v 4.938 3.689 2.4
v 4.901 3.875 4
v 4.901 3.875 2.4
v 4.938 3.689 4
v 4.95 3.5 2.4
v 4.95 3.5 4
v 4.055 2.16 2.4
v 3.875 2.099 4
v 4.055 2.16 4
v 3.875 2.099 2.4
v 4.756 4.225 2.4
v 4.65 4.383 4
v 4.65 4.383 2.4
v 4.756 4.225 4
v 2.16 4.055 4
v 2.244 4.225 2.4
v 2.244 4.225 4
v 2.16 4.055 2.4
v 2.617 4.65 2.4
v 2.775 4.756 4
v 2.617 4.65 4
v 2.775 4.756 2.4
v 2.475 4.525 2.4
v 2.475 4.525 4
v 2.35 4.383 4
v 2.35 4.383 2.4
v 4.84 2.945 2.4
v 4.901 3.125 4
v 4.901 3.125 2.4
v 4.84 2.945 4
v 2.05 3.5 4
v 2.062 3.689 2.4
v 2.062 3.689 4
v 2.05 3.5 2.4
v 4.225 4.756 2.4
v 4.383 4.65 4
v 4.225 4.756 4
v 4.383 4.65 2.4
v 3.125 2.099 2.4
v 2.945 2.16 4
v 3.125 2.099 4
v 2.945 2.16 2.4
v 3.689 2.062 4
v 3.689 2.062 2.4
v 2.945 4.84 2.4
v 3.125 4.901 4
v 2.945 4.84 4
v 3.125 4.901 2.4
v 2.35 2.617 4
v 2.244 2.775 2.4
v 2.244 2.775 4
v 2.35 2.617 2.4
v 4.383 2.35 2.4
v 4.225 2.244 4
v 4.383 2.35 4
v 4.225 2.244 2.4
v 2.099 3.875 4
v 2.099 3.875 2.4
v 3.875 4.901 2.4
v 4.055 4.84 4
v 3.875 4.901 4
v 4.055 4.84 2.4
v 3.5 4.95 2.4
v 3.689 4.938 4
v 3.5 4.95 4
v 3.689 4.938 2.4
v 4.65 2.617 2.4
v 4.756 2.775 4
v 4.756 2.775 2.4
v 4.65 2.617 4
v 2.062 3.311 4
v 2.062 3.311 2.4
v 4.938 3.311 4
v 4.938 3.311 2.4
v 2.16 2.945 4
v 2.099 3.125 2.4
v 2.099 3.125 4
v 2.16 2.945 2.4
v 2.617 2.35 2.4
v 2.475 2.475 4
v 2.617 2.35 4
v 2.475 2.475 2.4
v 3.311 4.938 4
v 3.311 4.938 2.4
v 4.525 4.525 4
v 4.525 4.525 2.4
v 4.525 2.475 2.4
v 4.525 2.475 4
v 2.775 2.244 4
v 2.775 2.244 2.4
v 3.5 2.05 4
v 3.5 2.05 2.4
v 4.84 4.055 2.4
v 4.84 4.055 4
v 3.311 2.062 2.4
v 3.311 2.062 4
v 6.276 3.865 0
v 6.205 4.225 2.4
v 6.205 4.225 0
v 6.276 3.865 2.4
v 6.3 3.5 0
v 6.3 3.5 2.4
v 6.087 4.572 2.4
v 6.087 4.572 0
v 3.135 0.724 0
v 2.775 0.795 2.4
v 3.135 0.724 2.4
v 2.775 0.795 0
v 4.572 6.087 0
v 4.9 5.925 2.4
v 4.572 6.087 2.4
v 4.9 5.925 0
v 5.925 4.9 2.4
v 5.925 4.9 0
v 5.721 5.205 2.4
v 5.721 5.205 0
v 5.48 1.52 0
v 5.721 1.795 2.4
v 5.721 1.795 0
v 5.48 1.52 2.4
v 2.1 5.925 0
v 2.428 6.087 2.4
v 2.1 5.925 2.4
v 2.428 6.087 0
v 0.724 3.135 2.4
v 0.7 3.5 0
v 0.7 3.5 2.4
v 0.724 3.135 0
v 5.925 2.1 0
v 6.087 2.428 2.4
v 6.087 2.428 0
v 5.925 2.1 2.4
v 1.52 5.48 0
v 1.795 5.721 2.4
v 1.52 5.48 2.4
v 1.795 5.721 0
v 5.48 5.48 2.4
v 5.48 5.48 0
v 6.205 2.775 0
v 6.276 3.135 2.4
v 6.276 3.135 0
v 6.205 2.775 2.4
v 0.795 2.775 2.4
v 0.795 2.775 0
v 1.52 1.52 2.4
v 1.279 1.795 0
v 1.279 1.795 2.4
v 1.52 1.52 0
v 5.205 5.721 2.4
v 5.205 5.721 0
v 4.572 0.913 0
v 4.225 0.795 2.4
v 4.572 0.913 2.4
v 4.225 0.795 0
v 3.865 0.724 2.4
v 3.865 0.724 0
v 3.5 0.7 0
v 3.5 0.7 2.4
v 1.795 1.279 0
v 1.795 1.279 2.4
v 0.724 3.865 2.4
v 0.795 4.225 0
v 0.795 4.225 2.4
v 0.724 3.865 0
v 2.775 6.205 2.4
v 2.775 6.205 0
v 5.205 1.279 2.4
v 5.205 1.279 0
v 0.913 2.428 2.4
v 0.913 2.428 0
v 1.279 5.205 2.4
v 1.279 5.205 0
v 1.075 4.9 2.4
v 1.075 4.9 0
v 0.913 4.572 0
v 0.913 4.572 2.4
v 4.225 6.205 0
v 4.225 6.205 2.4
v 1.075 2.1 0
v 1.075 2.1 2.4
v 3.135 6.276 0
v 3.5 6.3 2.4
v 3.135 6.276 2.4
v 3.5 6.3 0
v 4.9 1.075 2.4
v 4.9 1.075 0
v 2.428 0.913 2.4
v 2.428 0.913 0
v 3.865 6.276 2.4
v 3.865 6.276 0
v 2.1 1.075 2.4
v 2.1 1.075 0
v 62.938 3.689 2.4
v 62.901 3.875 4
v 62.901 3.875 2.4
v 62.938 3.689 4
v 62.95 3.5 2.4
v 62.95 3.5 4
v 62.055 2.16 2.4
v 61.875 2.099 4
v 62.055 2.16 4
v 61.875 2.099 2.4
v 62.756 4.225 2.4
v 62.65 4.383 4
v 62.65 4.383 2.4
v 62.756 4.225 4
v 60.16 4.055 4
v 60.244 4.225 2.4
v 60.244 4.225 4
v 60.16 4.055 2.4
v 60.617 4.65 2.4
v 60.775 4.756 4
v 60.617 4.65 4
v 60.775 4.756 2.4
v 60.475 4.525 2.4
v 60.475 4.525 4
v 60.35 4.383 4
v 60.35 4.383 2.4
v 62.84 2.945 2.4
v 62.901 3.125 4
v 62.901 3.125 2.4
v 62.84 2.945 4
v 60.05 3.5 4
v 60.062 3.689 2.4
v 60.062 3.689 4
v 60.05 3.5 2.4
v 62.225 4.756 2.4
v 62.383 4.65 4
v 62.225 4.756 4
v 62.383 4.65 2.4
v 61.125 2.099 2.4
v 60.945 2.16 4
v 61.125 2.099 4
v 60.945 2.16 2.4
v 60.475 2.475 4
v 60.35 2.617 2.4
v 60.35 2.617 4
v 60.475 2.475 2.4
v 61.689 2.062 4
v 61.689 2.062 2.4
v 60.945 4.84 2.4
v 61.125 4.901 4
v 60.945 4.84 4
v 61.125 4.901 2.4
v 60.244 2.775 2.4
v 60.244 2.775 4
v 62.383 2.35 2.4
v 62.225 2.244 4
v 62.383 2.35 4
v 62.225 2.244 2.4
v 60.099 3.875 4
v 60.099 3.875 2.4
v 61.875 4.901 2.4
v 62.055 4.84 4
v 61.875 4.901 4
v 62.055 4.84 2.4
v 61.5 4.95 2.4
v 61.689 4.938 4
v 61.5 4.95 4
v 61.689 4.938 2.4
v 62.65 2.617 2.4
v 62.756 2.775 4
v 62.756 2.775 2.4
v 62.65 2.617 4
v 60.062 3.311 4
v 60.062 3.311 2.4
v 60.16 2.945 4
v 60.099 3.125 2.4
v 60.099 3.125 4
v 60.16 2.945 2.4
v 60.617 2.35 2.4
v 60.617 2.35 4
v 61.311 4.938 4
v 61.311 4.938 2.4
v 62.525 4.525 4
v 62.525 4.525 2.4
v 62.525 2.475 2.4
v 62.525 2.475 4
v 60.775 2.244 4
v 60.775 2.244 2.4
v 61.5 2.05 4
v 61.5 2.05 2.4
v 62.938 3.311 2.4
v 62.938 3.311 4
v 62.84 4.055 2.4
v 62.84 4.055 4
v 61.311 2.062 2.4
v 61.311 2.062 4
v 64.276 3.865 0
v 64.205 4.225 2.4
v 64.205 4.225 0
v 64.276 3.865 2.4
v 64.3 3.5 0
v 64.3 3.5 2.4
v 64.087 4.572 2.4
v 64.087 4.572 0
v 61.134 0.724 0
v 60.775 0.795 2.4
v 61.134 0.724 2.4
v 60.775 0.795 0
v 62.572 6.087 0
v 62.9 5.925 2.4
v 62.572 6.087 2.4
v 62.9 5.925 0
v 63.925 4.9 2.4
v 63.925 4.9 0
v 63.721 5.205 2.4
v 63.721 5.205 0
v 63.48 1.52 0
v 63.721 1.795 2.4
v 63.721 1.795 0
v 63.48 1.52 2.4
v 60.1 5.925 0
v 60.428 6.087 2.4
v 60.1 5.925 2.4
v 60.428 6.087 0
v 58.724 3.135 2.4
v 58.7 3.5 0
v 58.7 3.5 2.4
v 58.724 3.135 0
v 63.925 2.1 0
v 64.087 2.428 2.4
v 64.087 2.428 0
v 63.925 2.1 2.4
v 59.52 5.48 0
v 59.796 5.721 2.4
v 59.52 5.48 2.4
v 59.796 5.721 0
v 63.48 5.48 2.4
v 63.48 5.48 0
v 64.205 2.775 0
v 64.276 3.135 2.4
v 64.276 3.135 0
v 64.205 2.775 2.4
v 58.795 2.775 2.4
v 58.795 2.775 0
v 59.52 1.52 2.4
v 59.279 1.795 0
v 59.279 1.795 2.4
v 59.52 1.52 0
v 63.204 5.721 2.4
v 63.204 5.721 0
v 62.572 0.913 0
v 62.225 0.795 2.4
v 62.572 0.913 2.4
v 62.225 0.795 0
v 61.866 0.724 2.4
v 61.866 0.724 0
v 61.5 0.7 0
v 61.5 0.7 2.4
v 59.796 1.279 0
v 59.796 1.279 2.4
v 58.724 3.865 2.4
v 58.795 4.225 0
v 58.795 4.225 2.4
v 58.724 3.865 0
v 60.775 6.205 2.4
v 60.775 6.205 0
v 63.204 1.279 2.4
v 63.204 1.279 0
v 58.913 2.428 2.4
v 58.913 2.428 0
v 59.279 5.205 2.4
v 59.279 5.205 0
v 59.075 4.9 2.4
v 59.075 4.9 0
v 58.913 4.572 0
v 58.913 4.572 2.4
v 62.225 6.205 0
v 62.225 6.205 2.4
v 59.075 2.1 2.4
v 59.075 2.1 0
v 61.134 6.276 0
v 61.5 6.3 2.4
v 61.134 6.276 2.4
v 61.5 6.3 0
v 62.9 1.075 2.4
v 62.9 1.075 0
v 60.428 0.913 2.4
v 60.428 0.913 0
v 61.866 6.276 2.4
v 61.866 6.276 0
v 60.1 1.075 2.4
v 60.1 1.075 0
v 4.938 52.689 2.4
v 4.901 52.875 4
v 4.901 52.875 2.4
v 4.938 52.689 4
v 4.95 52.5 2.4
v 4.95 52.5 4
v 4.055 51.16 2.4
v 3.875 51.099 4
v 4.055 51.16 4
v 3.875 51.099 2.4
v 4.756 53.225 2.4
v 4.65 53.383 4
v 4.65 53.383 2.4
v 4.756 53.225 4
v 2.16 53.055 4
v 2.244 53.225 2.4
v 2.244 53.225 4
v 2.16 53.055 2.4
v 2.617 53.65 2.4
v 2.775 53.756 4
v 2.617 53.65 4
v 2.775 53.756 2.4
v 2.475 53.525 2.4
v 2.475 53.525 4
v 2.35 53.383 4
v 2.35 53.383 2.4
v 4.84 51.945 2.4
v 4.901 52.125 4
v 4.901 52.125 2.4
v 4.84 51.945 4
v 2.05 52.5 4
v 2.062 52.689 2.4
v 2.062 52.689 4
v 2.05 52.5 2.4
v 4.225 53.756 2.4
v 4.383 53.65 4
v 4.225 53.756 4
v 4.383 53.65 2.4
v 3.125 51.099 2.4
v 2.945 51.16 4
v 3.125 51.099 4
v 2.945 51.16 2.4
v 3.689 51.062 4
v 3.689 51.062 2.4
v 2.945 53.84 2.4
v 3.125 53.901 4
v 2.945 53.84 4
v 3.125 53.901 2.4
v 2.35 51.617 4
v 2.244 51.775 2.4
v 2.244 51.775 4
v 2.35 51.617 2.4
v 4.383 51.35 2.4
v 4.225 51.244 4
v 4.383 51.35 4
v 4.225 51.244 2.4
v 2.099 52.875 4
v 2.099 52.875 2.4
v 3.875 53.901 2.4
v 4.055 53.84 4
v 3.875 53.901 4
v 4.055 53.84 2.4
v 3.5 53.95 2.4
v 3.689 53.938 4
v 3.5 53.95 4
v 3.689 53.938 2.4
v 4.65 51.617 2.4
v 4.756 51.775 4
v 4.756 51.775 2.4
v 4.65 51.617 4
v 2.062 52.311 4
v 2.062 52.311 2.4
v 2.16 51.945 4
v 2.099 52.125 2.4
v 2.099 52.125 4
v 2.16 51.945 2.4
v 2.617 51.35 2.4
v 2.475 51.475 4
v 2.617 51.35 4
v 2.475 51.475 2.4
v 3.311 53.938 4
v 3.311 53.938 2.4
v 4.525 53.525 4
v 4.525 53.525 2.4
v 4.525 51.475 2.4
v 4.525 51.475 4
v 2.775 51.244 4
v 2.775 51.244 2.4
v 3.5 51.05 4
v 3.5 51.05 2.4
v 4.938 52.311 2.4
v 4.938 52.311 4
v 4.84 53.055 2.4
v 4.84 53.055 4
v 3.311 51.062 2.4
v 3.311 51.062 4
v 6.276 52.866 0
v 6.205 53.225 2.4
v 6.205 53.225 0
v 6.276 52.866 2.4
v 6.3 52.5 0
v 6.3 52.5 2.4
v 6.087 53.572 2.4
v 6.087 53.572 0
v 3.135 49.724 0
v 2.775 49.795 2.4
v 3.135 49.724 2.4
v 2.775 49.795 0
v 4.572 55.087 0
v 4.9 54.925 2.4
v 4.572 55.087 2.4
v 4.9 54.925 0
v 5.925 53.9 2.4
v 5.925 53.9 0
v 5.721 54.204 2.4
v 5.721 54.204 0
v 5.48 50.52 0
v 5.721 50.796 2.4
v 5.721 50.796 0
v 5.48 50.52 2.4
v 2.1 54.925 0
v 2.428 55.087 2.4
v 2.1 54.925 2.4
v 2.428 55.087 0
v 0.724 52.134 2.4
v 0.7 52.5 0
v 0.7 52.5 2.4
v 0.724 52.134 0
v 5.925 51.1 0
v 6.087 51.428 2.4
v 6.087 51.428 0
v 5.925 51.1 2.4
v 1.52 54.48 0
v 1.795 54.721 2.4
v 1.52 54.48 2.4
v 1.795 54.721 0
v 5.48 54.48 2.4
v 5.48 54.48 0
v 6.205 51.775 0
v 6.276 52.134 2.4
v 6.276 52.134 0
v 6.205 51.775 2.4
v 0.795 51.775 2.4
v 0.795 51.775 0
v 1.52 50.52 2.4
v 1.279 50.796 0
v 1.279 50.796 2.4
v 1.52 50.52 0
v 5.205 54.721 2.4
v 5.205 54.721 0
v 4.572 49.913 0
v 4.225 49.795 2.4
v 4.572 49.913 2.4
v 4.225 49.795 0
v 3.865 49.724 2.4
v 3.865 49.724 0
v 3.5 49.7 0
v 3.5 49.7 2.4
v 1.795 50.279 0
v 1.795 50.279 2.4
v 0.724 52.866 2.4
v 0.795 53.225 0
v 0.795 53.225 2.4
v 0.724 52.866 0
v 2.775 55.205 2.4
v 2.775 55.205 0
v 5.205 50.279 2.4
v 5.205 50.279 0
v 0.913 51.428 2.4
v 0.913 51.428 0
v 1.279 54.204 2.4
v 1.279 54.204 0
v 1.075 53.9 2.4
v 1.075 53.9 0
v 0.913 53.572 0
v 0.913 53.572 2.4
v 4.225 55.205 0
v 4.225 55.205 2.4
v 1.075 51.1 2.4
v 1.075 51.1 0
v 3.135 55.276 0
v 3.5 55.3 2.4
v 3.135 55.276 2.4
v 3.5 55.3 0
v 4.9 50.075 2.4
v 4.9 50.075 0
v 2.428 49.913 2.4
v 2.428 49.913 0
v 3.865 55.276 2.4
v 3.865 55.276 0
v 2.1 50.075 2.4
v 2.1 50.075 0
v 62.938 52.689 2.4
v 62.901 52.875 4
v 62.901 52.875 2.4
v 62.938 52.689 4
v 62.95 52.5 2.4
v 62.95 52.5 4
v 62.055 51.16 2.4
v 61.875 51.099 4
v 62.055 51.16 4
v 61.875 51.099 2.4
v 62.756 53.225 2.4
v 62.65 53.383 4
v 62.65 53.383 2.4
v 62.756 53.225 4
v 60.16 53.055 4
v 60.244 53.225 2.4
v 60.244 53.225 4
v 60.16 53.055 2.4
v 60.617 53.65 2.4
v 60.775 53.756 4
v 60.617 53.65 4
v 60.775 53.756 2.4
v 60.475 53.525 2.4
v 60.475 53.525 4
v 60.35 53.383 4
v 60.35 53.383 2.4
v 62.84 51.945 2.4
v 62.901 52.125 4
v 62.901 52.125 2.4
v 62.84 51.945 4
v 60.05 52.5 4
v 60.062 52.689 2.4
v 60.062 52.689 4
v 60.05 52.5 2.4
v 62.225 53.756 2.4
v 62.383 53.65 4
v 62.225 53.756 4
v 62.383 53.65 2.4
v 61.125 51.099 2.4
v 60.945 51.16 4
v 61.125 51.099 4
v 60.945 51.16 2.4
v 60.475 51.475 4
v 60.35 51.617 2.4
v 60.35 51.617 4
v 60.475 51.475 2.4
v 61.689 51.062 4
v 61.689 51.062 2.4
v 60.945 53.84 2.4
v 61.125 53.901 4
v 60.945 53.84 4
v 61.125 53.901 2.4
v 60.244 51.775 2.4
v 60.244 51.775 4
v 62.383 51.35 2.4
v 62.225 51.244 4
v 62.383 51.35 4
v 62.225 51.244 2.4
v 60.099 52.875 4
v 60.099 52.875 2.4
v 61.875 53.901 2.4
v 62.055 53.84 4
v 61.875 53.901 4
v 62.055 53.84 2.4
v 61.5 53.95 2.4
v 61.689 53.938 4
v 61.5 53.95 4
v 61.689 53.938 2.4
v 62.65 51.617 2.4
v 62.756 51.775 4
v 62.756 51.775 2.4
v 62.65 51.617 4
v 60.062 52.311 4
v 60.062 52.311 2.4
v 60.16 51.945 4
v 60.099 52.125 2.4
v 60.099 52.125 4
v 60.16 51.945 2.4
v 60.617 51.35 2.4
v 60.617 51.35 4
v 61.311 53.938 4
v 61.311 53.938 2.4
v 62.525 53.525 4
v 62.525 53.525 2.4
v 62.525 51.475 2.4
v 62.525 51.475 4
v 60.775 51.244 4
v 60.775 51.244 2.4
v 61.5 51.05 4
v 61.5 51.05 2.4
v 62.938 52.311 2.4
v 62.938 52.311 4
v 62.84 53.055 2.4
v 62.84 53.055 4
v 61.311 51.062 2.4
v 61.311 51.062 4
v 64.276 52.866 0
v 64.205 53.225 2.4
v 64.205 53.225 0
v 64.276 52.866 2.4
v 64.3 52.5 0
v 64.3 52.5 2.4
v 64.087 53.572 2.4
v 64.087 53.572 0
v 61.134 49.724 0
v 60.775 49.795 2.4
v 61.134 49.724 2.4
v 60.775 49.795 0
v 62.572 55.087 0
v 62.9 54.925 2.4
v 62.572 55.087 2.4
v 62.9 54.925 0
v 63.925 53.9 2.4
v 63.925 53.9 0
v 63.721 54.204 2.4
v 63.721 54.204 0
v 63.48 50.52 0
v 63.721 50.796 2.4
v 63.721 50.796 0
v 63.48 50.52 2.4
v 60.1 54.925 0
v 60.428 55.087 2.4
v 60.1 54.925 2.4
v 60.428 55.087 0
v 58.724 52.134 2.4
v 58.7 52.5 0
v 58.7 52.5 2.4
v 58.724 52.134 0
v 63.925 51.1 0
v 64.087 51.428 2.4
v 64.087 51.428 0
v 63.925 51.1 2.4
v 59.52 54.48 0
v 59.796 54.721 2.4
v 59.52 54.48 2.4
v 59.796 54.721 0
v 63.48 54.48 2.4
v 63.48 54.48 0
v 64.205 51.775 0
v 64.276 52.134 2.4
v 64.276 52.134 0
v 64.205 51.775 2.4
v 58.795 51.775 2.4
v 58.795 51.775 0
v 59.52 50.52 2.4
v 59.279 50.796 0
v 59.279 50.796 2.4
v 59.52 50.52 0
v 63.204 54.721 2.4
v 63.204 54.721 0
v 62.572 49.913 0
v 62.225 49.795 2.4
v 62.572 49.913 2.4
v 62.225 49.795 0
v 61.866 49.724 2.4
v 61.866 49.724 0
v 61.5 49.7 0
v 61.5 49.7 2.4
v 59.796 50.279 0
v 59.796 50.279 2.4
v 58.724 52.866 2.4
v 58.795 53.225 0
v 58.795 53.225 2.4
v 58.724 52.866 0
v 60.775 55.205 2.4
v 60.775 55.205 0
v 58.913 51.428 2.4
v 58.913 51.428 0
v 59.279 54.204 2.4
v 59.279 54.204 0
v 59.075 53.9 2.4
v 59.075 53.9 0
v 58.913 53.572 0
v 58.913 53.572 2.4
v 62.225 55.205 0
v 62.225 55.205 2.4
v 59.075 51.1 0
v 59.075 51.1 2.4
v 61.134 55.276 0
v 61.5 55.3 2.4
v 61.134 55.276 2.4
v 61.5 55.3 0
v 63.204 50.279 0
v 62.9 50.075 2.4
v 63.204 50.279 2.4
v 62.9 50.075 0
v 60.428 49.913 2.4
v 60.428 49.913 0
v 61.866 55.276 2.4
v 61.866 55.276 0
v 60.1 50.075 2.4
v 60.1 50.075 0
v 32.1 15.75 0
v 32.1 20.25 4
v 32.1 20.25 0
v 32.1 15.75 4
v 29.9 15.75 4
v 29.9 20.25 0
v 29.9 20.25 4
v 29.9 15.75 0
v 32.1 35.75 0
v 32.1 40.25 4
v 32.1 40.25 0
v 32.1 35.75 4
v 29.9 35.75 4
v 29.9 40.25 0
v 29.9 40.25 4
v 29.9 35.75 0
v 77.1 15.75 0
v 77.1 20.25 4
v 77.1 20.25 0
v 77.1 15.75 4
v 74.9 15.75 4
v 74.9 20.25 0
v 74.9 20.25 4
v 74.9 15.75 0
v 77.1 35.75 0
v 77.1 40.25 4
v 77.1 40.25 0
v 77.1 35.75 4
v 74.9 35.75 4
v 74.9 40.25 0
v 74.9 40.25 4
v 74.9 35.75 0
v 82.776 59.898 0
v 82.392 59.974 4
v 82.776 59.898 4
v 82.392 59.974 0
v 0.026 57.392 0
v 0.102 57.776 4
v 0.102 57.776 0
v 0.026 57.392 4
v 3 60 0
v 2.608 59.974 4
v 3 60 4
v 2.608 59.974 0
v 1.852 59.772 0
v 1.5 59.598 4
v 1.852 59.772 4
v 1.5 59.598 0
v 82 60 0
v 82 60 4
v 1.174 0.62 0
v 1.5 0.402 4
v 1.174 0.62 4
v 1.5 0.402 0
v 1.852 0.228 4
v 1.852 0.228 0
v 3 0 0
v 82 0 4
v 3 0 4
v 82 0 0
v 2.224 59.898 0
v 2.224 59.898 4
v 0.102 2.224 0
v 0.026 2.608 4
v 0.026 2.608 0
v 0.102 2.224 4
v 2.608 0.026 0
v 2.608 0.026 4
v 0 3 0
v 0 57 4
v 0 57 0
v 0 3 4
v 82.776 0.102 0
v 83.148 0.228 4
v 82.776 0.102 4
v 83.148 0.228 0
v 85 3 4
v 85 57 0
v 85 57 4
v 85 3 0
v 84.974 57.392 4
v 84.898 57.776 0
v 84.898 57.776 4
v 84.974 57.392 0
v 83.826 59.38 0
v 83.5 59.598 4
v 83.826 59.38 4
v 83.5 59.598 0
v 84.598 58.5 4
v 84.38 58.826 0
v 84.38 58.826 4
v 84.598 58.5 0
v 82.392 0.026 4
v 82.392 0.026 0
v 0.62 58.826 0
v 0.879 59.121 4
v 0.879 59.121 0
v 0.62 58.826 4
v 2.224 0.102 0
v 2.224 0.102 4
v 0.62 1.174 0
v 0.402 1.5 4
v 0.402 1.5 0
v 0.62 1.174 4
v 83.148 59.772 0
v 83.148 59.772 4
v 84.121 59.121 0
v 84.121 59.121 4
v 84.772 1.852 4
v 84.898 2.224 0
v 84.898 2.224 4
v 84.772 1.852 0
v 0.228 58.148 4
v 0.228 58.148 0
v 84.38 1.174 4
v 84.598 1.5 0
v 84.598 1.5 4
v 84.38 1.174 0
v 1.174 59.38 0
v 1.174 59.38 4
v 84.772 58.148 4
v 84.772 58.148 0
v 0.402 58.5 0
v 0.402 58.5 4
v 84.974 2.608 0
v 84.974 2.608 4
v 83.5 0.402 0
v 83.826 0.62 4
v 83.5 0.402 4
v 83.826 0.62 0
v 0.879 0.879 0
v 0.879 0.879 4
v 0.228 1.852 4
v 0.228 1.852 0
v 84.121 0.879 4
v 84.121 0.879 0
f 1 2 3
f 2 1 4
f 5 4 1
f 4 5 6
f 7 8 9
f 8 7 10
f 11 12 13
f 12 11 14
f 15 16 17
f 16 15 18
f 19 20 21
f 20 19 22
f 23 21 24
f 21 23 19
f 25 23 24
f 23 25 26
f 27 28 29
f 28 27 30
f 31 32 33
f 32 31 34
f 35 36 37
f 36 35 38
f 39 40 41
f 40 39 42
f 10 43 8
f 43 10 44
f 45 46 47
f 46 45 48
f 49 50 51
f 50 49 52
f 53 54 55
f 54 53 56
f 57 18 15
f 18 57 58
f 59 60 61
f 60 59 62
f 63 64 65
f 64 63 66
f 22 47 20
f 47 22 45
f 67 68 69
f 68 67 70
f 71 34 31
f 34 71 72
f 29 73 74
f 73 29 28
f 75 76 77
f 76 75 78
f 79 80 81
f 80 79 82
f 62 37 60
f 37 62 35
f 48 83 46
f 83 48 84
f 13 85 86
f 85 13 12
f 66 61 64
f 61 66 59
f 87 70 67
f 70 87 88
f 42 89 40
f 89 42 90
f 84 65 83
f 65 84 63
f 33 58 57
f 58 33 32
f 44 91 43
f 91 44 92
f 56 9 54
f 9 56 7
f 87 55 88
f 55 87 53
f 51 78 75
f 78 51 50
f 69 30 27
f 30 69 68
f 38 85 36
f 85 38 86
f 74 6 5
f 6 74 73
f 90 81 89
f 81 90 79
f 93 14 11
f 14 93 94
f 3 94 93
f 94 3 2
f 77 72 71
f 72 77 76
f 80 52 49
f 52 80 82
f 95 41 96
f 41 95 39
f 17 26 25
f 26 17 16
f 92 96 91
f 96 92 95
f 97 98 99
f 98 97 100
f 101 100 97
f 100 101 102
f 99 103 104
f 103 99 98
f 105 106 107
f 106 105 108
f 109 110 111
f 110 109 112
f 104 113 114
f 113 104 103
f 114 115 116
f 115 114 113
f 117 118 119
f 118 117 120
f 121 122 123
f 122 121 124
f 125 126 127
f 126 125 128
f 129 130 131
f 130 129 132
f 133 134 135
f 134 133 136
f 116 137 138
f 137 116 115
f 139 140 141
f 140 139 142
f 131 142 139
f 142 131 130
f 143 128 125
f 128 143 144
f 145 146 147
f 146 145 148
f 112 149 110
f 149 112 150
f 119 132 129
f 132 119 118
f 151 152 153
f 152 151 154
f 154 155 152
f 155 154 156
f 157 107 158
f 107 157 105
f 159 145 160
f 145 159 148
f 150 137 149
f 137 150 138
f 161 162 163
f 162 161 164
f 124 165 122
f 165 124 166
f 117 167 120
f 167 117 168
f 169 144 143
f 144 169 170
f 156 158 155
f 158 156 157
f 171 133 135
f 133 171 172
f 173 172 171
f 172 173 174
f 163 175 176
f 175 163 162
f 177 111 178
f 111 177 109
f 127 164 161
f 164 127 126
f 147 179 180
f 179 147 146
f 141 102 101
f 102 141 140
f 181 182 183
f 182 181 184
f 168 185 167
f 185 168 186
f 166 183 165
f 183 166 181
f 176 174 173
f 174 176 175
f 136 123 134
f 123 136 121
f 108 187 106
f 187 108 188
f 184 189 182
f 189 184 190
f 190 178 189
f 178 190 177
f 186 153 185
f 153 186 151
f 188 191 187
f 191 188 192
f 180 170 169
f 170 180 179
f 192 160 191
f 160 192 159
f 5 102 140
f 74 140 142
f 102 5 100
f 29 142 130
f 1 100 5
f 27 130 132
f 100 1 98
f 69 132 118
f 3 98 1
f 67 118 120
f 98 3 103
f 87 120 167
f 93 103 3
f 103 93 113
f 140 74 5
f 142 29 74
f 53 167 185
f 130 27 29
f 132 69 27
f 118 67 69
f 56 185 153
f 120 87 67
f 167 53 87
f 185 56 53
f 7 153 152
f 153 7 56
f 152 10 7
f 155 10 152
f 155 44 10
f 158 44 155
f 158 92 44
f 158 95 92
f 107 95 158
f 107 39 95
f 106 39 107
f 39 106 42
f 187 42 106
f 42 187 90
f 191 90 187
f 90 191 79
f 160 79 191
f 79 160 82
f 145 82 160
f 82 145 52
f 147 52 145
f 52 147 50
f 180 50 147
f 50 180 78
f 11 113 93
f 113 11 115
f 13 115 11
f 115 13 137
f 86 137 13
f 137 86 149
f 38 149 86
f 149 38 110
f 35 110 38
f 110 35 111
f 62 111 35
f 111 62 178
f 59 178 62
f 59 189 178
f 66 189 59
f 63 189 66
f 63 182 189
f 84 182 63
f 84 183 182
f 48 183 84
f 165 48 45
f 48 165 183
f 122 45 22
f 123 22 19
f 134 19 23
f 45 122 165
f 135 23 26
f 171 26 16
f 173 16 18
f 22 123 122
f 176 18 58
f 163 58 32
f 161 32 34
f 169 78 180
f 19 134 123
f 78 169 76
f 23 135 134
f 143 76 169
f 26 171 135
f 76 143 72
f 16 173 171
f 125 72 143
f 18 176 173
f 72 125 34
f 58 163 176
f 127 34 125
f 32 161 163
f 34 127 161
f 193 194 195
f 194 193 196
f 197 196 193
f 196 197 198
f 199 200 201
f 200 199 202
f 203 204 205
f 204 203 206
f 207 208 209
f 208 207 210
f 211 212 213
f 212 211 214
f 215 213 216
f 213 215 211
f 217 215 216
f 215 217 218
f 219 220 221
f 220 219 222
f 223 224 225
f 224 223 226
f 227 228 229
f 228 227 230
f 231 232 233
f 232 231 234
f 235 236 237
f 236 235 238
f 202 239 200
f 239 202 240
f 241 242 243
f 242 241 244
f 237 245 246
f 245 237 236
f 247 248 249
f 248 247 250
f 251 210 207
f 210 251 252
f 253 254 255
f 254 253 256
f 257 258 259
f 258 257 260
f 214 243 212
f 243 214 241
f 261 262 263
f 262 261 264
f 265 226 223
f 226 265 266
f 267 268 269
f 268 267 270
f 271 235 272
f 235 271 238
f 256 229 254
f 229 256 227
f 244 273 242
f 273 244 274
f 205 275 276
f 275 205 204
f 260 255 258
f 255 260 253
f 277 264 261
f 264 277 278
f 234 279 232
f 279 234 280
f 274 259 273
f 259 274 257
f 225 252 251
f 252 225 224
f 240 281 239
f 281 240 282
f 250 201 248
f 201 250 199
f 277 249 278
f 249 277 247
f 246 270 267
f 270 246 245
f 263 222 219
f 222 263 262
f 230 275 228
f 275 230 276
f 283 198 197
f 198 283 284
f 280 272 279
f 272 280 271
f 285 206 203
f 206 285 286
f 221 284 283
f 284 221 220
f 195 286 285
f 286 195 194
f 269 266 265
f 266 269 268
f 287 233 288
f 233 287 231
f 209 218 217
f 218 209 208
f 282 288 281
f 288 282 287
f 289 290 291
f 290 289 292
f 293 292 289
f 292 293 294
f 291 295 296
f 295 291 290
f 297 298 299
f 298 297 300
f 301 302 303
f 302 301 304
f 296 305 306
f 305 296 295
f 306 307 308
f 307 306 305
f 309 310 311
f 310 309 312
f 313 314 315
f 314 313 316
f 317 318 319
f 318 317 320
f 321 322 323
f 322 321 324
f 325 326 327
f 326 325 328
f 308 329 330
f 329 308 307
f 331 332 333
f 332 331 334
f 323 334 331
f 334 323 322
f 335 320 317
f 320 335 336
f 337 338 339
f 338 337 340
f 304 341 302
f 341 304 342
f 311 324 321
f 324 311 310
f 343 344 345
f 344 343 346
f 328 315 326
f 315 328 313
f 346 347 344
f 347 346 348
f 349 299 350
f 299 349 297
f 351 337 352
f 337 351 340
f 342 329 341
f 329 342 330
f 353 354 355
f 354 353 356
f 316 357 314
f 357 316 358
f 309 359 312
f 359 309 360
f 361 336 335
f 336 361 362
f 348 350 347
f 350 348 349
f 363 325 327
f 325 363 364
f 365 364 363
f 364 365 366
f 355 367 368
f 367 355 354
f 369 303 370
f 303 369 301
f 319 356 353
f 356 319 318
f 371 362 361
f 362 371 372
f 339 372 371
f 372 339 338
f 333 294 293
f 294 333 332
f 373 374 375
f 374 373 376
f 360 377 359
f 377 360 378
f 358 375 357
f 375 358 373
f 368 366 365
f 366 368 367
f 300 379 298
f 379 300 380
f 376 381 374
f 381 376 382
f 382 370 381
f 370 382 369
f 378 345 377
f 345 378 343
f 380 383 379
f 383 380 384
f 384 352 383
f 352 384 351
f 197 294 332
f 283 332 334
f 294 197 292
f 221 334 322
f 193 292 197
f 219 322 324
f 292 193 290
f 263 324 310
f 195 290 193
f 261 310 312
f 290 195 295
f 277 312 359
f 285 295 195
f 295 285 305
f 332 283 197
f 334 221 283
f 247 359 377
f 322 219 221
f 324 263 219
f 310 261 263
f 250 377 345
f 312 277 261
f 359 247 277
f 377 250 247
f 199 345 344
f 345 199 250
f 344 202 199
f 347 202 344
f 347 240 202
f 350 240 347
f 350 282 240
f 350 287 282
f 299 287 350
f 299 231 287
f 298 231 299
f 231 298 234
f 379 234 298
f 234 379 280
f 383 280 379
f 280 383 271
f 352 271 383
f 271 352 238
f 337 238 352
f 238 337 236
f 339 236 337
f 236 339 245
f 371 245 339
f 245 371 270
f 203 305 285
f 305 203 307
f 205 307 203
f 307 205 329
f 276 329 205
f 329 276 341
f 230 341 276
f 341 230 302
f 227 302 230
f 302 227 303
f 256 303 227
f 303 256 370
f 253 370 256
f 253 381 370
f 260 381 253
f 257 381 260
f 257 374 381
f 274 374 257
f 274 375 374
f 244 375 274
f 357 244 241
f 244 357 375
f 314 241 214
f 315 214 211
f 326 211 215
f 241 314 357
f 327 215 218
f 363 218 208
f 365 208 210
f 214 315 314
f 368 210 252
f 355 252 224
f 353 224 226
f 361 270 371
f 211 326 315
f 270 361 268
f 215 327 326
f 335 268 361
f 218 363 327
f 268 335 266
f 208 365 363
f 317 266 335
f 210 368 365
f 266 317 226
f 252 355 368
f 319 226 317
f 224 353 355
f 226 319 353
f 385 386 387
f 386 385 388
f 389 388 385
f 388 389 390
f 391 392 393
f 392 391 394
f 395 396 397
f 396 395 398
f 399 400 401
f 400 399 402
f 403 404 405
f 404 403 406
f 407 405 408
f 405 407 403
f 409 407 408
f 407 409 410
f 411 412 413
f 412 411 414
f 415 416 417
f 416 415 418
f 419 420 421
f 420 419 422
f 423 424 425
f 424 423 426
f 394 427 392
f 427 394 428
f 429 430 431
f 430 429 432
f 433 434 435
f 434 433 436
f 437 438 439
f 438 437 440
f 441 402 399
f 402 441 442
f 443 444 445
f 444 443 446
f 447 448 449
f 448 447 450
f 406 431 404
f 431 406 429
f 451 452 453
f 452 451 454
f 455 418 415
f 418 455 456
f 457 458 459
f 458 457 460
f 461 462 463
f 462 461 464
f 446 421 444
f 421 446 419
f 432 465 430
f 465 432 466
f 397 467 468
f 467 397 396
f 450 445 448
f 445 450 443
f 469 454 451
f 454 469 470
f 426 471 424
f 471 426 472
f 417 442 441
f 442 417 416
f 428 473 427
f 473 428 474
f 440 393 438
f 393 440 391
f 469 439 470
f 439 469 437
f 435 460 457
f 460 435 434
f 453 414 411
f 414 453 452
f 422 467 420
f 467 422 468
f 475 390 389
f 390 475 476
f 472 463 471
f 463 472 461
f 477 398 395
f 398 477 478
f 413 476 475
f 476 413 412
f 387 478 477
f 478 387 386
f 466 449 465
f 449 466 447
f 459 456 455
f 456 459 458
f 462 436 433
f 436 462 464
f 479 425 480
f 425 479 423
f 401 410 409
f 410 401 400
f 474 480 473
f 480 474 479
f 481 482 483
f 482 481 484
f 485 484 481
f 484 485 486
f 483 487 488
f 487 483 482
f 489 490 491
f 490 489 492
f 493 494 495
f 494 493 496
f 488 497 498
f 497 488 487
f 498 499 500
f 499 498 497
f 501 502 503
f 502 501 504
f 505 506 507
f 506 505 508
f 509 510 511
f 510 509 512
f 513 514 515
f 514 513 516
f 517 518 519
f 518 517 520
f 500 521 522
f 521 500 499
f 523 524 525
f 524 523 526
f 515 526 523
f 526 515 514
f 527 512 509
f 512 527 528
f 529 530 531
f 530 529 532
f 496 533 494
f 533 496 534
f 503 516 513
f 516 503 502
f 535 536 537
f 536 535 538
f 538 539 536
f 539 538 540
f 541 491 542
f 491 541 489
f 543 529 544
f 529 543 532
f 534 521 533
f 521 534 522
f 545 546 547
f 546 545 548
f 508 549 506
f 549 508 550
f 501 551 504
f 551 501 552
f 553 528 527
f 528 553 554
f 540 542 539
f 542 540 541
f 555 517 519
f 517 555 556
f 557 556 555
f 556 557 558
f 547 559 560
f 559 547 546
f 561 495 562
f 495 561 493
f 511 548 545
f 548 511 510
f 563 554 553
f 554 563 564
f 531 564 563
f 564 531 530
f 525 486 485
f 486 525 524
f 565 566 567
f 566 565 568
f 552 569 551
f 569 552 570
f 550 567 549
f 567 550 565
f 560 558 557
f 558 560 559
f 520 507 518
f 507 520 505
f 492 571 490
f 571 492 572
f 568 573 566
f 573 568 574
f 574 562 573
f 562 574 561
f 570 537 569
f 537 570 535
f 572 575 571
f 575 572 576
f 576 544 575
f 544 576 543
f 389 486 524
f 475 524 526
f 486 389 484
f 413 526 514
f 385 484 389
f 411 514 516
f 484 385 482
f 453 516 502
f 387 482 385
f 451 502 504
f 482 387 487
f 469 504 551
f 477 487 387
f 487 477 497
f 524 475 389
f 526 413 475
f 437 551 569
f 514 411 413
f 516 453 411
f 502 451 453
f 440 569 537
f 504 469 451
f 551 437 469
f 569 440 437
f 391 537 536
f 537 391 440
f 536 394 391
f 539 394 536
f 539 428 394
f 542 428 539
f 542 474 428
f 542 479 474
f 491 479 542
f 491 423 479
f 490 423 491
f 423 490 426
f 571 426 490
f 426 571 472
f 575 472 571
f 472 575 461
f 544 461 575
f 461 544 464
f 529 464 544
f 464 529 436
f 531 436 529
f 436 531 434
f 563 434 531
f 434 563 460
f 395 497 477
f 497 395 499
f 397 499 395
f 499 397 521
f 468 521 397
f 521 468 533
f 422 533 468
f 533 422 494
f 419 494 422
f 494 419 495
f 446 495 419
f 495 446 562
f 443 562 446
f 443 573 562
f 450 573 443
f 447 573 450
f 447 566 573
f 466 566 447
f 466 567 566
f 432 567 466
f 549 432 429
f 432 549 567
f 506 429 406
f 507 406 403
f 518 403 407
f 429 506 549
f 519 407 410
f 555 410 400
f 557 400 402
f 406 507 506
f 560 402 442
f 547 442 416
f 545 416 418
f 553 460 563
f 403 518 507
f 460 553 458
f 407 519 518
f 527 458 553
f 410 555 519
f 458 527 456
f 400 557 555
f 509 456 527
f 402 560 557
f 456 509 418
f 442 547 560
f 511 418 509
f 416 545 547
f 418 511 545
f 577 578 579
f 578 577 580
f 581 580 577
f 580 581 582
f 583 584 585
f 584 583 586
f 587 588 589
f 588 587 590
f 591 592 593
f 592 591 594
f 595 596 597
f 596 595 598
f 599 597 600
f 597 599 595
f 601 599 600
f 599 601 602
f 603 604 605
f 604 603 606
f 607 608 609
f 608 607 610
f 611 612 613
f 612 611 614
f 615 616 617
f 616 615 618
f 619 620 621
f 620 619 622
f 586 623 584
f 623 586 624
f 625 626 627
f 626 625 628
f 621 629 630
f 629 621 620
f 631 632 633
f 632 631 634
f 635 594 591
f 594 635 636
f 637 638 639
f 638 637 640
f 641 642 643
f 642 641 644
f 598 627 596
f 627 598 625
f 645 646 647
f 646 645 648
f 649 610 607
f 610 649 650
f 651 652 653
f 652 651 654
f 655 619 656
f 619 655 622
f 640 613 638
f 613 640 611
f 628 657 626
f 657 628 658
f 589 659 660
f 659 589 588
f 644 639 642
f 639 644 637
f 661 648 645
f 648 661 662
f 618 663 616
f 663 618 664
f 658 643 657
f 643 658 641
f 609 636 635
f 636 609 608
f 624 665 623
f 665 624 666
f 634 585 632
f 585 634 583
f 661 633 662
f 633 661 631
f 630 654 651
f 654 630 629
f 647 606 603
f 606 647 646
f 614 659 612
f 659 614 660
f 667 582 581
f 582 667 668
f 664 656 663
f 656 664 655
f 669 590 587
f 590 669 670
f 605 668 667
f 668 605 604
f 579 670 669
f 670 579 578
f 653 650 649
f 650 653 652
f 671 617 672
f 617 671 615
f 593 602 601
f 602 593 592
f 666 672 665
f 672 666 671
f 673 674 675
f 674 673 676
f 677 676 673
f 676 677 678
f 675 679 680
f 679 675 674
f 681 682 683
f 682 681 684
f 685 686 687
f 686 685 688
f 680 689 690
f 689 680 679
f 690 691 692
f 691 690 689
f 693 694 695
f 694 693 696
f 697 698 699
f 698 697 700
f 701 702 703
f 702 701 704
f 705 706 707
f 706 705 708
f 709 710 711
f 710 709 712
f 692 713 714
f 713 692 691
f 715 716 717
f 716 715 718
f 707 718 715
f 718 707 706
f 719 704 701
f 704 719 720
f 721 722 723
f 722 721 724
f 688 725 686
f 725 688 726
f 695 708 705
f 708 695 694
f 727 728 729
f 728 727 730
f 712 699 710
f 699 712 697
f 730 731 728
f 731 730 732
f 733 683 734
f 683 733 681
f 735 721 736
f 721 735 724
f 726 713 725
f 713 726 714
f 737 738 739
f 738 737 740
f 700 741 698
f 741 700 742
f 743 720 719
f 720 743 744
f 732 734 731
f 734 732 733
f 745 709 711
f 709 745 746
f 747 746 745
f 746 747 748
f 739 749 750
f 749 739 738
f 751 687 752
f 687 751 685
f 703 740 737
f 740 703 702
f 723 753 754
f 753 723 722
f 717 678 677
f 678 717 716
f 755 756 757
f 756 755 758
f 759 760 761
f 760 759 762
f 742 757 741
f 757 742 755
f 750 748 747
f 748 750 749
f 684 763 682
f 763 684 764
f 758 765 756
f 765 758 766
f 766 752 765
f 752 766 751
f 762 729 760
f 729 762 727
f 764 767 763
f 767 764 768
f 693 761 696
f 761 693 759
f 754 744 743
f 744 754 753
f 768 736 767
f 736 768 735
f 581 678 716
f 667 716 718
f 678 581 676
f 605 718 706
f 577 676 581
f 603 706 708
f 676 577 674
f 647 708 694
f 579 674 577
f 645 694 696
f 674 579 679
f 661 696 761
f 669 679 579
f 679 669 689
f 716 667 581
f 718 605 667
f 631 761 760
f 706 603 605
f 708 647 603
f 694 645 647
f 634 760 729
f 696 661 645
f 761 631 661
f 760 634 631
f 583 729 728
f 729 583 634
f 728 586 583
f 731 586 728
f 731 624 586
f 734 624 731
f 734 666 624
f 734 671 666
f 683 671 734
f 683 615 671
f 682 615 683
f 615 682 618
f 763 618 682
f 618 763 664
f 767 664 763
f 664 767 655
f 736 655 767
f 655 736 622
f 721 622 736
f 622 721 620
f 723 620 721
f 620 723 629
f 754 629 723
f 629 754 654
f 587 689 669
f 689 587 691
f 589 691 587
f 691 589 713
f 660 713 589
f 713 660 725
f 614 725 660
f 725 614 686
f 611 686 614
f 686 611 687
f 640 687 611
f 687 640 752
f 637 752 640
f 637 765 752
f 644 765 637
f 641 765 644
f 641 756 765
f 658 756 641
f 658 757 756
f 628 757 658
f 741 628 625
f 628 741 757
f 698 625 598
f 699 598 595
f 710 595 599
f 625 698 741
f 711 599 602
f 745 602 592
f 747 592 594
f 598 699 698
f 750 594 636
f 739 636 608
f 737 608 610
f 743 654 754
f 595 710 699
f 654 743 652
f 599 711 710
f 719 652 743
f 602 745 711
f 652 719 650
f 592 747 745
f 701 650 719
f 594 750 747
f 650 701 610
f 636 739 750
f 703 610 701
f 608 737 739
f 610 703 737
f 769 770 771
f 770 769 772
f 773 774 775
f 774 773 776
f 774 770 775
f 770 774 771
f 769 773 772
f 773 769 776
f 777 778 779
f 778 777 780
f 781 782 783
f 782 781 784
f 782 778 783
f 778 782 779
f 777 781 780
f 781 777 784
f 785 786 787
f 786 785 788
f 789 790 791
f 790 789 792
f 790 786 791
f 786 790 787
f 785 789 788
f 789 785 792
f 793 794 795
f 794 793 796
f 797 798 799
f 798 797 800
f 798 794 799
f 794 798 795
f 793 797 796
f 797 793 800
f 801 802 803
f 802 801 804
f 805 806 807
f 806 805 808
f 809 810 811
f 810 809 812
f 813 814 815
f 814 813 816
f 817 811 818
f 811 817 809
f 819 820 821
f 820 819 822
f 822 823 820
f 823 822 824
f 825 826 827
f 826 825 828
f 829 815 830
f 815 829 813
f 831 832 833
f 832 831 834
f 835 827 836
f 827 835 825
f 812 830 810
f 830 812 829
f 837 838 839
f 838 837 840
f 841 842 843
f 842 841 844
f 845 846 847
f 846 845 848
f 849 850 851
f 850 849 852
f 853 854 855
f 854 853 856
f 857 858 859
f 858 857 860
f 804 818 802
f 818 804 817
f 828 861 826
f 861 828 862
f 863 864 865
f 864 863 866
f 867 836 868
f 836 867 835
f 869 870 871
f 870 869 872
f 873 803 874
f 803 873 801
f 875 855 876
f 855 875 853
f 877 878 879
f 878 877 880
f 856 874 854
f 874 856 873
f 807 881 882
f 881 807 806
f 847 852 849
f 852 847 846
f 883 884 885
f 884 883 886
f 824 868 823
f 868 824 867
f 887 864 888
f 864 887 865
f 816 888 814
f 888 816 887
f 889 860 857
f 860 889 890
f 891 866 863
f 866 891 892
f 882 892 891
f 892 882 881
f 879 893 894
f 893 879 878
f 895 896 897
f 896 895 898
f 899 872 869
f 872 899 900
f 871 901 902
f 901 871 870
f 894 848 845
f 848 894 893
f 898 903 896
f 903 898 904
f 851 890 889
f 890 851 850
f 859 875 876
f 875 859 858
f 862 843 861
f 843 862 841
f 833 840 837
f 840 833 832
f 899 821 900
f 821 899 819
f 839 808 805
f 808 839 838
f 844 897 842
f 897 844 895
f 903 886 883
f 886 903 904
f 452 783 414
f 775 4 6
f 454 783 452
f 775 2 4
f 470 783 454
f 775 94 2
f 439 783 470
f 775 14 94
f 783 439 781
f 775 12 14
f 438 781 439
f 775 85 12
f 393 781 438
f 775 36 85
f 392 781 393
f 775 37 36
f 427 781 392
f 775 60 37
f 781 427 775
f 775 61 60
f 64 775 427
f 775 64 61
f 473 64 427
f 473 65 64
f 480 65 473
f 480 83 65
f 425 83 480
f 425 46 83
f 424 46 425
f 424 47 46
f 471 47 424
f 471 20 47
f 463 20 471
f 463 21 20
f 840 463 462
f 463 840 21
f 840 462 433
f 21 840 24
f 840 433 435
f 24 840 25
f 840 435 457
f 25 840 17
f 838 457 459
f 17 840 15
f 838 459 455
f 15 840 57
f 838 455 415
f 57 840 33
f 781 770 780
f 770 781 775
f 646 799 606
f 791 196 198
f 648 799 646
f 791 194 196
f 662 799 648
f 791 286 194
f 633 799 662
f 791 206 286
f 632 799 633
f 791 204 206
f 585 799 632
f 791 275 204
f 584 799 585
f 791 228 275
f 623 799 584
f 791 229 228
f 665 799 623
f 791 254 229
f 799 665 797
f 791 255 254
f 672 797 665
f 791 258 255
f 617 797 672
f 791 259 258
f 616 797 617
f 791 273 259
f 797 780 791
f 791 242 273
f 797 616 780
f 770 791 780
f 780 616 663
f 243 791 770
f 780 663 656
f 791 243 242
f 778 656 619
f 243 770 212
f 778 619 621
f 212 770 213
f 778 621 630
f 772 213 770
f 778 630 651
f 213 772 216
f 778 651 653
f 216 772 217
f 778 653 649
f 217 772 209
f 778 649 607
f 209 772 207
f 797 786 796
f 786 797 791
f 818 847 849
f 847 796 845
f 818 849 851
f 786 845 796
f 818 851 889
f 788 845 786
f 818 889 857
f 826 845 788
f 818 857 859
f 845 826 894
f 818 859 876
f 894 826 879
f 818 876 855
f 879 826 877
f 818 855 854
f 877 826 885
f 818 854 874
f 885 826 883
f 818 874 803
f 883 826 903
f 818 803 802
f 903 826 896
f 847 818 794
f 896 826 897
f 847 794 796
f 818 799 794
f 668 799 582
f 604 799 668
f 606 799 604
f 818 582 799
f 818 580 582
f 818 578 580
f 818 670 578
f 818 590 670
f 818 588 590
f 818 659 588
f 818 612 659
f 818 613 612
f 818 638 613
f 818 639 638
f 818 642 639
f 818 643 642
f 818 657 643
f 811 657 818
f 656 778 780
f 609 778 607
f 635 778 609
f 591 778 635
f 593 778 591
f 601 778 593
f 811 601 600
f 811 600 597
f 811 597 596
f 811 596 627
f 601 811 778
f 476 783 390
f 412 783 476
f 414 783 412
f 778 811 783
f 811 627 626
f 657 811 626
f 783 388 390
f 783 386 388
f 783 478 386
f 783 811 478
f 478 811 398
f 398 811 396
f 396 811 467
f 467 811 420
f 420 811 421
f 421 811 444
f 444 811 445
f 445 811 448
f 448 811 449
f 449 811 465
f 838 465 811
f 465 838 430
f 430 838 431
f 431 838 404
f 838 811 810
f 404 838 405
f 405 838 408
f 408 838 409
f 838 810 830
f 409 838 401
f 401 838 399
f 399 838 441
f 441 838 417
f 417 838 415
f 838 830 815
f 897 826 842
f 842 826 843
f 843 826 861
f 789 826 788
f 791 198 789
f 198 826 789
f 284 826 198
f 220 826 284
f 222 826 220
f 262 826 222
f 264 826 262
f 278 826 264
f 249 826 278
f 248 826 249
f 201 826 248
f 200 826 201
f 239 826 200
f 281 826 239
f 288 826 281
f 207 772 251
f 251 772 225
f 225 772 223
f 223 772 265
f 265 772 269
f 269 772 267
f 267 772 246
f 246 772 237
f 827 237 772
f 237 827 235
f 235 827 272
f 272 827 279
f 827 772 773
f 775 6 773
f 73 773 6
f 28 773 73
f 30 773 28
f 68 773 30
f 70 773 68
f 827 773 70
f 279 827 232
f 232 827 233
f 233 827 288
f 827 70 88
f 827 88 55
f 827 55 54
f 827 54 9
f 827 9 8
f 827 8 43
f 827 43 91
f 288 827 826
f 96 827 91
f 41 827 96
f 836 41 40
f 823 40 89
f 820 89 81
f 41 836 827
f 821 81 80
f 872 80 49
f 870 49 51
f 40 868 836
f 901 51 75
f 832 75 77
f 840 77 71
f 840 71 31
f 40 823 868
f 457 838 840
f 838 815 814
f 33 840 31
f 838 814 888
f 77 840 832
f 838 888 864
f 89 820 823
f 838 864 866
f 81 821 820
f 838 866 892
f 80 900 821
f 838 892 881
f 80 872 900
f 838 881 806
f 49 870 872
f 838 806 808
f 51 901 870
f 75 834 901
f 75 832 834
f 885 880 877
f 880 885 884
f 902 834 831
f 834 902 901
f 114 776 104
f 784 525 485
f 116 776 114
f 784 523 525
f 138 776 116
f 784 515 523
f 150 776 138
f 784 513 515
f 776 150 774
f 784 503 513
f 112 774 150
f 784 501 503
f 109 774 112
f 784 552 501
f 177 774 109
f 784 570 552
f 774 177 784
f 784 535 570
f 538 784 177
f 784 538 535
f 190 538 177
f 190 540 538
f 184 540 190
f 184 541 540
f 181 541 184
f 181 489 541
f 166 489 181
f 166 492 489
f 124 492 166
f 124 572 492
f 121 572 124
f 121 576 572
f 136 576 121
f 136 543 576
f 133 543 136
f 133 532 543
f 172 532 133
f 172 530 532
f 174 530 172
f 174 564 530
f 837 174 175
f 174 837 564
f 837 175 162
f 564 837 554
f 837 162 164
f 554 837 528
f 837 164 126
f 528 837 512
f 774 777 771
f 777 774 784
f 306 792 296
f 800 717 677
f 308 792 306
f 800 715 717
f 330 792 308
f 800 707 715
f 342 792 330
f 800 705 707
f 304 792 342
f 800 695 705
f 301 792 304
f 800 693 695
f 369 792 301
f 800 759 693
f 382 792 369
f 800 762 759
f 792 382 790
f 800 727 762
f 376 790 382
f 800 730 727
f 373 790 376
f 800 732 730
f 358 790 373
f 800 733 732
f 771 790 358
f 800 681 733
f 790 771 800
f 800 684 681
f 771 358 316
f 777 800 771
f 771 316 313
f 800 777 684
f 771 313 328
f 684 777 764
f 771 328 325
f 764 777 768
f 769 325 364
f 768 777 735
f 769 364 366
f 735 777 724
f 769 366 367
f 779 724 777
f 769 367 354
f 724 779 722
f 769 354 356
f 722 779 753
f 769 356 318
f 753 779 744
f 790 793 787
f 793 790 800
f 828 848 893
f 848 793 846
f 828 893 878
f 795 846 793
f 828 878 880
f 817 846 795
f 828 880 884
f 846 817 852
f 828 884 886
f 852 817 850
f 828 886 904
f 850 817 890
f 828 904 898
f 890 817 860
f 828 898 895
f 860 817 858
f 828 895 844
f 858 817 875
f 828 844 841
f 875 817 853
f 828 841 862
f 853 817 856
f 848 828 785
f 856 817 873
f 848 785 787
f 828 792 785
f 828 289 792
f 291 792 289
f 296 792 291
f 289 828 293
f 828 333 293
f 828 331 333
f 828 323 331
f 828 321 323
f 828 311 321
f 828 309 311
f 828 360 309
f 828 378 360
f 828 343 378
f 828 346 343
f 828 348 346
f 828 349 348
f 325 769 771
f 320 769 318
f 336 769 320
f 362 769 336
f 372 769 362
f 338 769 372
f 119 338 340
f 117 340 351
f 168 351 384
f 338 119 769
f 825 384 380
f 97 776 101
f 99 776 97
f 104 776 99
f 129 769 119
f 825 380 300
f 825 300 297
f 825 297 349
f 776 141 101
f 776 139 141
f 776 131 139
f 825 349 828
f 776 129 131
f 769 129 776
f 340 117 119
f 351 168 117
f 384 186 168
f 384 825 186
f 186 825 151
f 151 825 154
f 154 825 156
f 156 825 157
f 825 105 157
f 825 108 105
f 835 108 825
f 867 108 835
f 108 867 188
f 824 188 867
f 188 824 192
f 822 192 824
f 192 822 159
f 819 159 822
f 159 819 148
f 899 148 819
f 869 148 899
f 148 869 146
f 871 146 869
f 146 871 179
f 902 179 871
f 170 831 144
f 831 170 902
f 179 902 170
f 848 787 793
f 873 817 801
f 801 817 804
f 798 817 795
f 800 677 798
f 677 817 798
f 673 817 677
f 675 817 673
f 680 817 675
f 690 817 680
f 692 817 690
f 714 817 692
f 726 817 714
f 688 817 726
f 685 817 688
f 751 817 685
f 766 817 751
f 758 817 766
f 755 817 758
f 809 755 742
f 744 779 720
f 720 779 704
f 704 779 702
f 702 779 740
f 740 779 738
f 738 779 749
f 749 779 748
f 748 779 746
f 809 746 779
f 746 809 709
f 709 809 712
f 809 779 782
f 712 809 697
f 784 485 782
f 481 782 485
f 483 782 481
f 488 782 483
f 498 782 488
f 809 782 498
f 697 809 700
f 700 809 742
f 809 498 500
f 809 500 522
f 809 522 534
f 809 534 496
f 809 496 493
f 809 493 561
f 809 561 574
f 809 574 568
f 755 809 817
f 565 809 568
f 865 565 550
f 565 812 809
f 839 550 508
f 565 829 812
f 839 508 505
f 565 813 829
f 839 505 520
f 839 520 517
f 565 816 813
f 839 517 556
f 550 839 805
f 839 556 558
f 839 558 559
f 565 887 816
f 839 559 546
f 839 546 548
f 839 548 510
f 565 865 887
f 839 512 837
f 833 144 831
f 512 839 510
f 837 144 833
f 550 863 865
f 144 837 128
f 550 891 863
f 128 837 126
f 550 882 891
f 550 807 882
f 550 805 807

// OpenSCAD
// Forrest Jr - Pi 5 test holding plate, v0
// Holds: Raspberry Pi 5 + Official Active Cooler + AI HAT+ (16 mm standoffs)
//
// How the stack goes together (bottom to top):
//   M2.5 screw (from underneath, head sits in a recess)
//   -> this plate
//   -> 6 mm male-female brass standoff (female end down, on the screw)
//   -> Pi 5 (standoff's male thread pokes up through the Pi's hole)
//   -> 16 mm male-female standoff (screws onto that thread, clamps the Pi)
//   -> AI HAT+ (on the 16 mm male thread) -> M2.5 nut on top
//
// All sizes in mm. Change a number at the top, press F6, export STL.

/* ---------- Pi 5 (from the official mechanical drawing) ---------- */
board_x       = 85;    // Pi 5 length
board_y       = 56;    // Pi 5 width
corner_r      = 3;     // Pi 5 corner radius
hole_inset    = 3.5;   // hole centre from board edge
hole_dx       = 58;    // hole spacing, long direction
hole_dy       = 49;    // hole spacing, short direction

/* ---------- Plate ---------- */
plate_t       = 4;     // plate thickness
// Extra plate beyond the board edge. Kept at 0 on three sides so the
// microSD card (underside, left end), USB/Ethernet plugs (right end) and
// power/HDMI plugs (front edge) hang free. A little extra behind the GPIO edge.
margin_left   = 0;     // microSD end
margin_right  = 0;     // USB / Ethernet end
margin_front  = 0;     // USB-C power / micro-HDMI edge
margin_back   = 4;     // GPIO header edge

/* ---------- Screws ---------- */
screw_clear_d = 2.9;   // M2.5 clearance hole (prints slightly small, so a bit over 2.5)
head_d        = 5.6;   // recess for an M2.5 pan/cap head
head_depth    = 2.4;   // recess depth (head sits flush or below the bottom face)

/* ---------- Strap slots (zip ties / Velcro to a tripod plate or backpack) ---------- */
slots_on      = true;
slot_len      = 4.5;
slot_w        = 2.2;
slot_pairs_x  = [31, 76];   // x positions of the slot pairs (kept clear of the holes)
slot_gap      = 20;          // distance between the two slots in a pair

$fn = 48;

/* ---------- Derived ---------- */
plate_x0 = -margin_left;
plate_y0 = -margin_front;
plate_w  = board_x + margin_left + margin_right;
plate_d  = board_y + margin_front + margin_back;

hole_pts = [
    [hole_inset,            hole_inset],
    [hole_inset + hole_dx,  hole_inset],
    [hole_inset,            hole_inset + hole_dy],
    [hole_inset + hole_dx,  hole_inset + hole_dy]
];

module rounded_rect(w, d, h, r) {
    hull()
        for (x = [r, w - r], y = [r, d - r])
            translate([x, y, 0]) cylinder(r = r, h = h);
}

module plate() {
    difference() {
        translate([plate_x0, plate_y0, 0])
            rounded_rect(plate_w, plate_d, plate_t, corner_r);

        // Screw holes + head recesses (recess on the underside)
        for (p = hole_pts) translate([p[0], p[1], 0]) {
            translate([0, 0, -1]) cylinder(d = screw_clear_d, h = plate_t + 2);
            translate([0, 0, -1]) cylinder(d = head_d, h = head_depth + 1);
        }

        // Strap slots
        if (slots_on)
            for (sx = slot_pairs_x, s = [-1, 1])
                translate([sx - slot_w / 2,
                           board_y / 2 + s * slot_gap / 2 - slot_len / 2,
                           -1])
                    cube([slot_w, slot_len, plate_t + 2]);
    }
}

// Ghost of the Pi board, preview only (F5). Not exported.
module pi_ghost() {
    %translate([0, 0, plate_t + 6]) rounded_rect(board_x, board_y, 1.6, corner_r);
}

plate();
pi_ghost();
